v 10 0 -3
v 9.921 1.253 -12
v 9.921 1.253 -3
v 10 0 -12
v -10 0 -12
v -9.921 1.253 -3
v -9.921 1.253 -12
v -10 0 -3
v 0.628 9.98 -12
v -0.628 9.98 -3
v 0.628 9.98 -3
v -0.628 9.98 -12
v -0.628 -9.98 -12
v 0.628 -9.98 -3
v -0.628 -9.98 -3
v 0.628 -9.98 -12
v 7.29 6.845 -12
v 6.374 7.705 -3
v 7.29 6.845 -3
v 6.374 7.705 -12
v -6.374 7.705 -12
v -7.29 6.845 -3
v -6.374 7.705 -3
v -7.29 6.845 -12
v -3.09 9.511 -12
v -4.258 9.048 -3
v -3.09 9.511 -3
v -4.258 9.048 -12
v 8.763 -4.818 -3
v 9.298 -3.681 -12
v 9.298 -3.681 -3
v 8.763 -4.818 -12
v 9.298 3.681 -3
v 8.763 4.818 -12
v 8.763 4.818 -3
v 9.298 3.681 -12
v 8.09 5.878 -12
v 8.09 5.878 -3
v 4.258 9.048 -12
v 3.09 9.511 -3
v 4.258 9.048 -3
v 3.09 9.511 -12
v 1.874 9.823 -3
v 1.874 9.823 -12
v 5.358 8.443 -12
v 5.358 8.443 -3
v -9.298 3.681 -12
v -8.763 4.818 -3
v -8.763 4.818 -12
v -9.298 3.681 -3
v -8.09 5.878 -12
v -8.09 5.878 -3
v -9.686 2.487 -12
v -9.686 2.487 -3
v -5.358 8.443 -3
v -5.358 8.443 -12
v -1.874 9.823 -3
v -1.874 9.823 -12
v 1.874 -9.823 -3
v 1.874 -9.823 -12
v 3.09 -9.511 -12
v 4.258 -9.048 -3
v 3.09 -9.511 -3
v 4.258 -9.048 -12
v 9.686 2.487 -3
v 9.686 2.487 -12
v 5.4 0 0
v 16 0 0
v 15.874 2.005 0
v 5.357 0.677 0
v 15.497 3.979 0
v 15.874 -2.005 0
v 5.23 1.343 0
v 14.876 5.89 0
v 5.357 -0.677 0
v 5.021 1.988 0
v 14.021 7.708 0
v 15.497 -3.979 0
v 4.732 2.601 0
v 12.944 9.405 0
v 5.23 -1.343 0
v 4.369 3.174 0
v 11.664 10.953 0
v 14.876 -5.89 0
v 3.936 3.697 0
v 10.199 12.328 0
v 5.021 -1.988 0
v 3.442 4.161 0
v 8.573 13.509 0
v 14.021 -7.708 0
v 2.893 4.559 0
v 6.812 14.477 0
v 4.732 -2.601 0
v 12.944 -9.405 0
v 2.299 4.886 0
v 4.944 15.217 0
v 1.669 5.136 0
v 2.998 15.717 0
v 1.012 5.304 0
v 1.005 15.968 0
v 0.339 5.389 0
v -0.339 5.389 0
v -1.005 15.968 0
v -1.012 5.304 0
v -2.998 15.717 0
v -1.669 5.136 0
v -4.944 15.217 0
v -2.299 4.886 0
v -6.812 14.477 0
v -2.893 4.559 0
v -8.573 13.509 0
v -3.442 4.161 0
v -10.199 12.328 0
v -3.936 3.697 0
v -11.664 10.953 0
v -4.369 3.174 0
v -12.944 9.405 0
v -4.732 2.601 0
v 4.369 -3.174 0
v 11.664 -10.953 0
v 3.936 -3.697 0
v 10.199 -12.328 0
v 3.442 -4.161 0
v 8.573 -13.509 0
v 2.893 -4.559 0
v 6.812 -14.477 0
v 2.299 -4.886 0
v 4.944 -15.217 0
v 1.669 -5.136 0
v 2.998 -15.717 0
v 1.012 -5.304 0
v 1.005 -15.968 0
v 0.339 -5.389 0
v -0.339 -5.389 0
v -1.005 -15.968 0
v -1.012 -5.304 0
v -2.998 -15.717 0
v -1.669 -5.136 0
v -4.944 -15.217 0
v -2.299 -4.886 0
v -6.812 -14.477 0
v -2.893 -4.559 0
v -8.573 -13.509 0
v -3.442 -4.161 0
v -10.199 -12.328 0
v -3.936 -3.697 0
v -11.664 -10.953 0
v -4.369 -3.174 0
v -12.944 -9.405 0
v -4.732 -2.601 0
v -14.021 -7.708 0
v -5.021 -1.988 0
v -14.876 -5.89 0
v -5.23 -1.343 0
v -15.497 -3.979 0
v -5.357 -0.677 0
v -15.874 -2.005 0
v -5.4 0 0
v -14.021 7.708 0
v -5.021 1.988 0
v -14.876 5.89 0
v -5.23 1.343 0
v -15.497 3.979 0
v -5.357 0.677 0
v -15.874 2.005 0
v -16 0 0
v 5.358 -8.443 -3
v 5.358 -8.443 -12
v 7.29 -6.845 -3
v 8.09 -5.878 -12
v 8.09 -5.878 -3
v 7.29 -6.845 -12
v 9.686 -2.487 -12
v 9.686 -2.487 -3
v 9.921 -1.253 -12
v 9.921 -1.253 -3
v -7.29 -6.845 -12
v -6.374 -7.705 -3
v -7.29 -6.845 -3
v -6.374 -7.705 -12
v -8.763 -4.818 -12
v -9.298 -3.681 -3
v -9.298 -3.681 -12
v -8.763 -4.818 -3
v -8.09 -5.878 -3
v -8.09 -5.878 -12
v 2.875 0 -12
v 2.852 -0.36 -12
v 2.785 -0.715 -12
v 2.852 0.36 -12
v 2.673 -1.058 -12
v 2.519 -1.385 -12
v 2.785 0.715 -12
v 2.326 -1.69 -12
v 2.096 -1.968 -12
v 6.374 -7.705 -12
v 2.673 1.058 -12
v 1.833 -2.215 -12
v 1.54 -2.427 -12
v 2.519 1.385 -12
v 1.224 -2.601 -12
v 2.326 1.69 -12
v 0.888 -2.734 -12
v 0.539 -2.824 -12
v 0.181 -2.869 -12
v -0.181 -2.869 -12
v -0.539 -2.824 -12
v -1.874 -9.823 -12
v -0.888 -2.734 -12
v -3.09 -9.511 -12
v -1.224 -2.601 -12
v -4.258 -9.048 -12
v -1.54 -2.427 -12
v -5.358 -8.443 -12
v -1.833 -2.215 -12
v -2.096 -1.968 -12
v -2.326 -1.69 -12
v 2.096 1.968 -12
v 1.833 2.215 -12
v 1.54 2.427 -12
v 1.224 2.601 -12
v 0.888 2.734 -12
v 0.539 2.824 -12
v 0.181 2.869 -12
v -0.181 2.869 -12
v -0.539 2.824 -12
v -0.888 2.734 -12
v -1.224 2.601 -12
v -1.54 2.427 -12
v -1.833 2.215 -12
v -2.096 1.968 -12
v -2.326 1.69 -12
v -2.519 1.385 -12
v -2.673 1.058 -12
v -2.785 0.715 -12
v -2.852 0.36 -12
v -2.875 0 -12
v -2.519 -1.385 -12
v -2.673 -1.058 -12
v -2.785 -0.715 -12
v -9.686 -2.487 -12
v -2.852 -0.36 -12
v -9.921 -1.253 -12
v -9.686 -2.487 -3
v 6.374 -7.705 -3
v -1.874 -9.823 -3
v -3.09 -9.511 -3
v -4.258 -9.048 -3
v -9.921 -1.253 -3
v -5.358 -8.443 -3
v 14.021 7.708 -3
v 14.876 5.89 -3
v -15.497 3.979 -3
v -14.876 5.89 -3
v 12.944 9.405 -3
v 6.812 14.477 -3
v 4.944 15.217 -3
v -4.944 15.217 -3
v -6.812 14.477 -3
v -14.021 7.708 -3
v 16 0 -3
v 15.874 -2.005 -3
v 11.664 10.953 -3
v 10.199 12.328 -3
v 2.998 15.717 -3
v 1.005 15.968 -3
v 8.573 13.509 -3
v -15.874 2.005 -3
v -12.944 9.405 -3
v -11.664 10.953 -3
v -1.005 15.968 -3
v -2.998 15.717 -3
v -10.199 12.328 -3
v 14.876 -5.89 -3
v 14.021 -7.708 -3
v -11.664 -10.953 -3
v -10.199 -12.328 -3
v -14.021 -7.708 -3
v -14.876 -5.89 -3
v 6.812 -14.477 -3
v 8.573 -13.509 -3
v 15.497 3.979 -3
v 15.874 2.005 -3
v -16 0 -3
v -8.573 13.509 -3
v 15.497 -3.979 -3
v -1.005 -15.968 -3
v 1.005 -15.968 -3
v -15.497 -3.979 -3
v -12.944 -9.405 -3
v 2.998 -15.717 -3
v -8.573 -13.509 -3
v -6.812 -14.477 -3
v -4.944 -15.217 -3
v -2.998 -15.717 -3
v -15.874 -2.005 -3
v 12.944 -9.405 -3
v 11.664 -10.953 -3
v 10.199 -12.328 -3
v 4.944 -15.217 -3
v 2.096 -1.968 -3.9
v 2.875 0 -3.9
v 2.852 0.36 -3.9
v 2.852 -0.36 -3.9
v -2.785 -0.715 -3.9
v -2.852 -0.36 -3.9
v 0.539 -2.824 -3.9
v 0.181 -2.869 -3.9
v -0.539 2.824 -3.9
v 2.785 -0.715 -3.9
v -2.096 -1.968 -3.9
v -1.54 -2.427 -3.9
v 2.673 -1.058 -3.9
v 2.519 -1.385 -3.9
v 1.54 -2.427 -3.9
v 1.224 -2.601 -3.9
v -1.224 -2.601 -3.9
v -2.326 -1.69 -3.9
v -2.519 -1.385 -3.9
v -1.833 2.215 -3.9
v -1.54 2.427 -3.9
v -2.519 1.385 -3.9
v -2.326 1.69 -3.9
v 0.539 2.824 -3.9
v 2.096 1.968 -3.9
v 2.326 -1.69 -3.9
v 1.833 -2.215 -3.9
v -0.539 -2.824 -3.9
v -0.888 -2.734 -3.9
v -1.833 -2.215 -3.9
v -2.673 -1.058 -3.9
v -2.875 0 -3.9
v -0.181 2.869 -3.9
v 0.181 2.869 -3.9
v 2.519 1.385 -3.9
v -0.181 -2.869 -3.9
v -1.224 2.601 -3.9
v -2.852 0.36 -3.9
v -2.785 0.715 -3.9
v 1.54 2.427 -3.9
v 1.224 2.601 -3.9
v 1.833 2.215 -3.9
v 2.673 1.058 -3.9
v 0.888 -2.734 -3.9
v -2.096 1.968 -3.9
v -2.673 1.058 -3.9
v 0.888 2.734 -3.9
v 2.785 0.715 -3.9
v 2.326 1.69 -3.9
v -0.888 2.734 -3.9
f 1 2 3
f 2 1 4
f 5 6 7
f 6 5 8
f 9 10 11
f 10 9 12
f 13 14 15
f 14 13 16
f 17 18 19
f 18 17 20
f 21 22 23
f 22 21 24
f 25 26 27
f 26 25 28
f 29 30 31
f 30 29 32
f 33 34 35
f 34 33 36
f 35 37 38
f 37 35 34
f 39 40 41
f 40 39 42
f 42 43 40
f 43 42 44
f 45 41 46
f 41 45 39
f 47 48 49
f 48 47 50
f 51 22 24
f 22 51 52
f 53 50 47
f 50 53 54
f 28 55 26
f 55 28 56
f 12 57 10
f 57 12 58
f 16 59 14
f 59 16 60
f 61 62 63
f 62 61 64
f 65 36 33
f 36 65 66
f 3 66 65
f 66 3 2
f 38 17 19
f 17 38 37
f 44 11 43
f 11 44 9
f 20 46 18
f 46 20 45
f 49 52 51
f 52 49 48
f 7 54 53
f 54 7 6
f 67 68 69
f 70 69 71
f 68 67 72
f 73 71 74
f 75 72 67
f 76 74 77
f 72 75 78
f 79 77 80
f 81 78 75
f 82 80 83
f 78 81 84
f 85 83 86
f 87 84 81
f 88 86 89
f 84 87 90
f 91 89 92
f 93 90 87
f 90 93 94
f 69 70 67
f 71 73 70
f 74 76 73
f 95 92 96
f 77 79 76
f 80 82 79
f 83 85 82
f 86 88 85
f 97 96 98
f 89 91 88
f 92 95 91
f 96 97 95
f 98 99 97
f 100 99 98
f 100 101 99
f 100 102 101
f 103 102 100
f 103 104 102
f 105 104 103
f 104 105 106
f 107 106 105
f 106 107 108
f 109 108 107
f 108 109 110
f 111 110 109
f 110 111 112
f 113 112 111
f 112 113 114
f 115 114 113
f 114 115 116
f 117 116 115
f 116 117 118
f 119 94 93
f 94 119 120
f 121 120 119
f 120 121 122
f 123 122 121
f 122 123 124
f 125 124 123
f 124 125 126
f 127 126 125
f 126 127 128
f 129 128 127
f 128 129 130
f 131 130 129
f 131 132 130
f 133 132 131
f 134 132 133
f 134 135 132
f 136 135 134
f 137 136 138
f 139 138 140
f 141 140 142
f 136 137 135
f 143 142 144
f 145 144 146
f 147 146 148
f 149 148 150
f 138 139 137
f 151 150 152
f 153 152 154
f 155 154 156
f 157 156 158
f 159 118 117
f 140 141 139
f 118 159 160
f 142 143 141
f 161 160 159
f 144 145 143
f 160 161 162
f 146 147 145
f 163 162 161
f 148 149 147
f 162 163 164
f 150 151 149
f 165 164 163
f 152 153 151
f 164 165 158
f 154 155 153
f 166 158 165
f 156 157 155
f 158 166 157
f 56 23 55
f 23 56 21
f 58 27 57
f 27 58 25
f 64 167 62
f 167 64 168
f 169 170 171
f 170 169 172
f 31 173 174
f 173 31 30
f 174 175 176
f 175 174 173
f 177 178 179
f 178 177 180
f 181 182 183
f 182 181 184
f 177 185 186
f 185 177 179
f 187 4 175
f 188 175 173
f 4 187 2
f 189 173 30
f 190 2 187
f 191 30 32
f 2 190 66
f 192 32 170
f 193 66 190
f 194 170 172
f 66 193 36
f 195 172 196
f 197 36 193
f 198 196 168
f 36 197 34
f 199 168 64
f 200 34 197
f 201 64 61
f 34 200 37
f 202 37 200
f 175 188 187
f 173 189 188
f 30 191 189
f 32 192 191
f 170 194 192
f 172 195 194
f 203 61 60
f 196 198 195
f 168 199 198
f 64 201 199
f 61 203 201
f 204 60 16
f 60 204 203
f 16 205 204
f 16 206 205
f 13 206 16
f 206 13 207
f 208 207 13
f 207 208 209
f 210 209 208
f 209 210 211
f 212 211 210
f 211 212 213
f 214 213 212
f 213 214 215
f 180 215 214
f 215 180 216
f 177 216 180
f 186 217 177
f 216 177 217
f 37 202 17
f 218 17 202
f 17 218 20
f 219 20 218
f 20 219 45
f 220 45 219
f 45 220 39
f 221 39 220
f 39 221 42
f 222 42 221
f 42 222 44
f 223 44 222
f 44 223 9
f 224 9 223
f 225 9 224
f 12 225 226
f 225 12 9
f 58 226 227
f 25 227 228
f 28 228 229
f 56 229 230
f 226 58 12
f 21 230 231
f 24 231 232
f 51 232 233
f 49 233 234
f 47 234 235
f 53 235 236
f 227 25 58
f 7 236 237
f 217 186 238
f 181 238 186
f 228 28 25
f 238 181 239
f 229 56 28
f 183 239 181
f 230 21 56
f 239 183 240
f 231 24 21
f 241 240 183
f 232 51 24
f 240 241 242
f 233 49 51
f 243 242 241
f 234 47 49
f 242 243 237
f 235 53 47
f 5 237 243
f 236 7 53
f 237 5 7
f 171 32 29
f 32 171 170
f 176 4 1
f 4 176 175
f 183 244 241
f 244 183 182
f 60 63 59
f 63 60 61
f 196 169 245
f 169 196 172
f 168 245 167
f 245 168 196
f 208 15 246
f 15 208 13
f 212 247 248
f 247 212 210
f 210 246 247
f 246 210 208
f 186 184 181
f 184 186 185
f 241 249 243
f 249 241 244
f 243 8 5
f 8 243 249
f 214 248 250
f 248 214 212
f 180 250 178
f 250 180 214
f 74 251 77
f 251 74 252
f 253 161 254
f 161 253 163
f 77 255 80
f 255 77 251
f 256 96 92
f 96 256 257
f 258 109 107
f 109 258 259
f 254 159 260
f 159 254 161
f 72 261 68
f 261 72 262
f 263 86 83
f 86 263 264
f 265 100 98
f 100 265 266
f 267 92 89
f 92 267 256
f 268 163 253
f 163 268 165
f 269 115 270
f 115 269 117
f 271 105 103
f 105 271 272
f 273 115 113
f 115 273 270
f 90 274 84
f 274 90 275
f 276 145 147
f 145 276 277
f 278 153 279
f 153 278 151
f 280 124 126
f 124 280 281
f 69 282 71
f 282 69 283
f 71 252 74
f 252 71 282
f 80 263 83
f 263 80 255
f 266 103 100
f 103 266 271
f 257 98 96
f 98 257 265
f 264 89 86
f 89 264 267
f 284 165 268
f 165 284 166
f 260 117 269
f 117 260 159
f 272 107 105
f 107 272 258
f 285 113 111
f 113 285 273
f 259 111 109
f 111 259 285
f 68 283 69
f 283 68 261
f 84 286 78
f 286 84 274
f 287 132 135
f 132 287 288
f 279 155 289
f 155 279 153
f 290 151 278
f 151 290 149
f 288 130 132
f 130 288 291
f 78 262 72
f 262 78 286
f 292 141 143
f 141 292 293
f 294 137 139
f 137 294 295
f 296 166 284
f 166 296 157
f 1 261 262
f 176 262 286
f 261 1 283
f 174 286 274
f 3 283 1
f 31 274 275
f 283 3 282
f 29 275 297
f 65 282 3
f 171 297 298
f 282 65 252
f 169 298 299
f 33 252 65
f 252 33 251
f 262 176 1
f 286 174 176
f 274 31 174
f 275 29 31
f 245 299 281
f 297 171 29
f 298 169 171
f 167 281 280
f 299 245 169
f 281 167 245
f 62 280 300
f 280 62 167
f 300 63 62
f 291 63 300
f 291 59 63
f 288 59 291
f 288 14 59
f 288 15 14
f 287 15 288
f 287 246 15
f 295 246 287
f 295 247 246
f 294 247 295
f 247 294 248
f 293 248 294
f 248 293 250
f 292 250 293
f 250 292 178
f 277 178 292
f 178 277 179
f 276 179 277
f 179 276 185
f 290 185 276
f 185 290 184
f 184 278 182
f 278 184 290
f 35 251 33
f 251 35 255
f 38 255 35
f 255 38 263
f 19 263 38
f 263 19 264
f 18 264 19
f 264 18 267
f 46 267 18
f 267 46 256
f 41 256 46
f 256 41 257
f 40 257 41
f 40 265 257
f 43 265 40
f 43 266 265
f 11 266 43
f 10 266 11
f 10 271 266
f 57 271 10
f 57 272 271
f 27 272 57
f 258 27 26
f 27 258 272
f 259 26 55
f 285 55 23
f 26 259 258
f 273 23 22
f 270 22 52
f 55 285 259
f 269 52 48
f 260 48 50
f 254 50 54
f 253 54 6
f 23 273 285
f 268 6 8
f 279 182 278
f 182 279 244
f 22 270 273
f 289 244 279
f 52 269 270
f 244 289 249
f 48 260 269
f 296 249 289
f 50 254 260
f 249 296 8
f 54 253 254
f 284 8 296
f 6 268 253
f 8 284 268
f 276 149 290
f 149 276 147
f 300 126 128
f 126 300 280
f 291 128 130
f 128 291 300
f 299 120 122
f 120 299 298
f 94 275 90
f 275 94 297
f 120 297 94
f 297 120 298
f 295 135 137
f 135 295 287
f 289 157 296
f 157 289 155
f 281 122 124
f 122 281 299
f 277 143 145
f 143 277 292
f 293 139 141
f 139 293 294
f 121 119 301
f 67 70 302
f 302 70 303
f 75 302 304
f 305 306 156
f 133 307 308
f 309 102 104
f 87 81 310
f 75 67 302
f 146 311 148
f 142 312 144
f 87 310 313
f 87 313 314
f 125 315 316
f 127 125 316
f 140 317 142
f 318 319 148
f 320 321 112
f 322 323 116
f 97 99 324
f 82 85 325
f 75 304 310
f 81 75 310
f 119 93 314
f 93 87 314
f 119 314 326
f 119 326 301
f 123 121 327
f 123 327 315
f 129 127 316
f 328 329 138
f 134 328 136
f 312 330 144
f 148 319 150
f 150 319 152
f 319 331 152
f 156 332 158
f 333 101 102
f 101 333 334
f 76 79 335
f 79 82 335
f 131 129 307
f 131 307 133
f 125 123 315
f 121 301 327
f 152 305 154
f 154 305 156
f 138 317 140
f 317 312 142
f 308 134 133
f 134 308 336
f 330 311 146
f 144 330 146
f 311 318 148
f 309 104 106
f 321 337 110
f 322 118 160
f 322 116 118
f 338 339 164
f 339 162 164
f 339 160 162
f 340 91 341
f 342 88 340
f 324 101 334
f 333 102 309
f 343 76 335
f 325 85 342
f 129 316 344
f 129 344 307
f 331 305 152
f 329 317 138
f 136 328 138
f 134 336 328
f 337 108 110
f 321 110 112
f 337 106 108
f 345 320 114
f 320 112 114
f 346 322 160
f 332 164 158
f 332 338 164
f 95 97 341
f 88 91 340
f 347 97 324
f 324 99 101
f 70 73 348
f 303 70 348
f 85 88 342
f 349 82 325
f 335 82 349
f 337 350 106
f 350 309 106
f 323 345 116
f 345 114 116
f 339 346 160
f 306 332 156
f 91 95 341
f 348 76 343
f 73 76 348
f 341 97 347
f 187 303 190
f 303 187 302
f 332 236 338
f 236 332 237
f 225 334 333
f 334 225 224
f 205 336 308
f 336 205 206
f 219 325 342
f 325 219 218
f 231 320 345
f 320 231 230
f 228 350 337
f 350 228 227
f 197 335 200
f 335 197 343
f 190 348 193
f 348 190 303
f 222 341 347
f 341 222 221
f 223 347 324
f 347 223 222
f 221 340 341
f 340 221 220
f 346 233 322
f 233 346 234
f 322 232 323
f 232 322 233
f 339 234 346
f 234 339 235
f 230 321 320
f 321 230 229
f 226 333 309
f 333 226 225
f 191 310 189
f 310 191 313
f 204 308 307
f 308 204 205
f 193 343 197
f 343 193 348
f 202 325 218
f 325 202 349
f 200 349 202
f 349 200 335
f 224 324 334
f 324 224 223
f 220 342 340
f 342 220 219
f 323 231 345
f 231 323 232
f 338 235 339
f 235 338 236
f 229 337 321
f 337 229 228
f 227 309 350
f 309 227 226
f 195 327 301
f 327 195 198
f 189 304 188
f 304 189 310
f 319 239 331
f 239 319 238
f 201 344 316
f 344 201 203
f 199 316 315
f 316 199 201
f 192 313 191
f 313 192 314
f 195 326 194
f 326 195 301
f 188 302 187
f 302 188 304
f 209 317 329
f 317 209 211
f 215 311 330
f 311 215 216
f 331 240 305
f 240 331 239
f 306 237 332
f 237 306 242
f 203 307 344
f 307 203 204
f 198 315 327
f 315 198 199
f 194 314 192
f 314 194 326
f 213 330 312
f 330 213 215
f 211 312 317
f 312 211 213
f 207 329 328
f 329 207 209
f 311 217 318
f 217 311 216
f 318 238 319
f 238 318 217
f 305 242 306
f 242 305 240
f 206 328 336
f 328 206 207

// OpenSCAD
$fn = 50;


difference() {
	union() {
		translate(v = [0, 0, -12.0000000000]) {
			cylinder(h = 12, r = 10.0000000000);
		}
		translate(v = [0, 0, -3.0000000000]) {
			cylinder(h = 3, r = 16.0000000000);
		}
	}
	union() {
		translate(v = [0, 0, 0]) {
			rotate(a = [0, 0, 0]) {
				difference() {
					union() {
						#translate(v = [0, 0, -12.0000000000]) {
							cylinder(h = 12, r = 2.6000000000);
						}
						#translate(v = [0, 0, -3.9000000000]) {
							cylinder(h = 3.9000000000, r = 10.0000000000, r1 = 2.8750000000, r2 = 5.4000000000);
						}
						#translate(v = [0, 0, -12.0000000000]) {
							cylinder(h = 12, r = 2.8750000000);
						}
						#translate(v = [0, 0, -12.0000000000]) {
							cylinder(h = 12, r = 2.6000000000);
						}
					}
					union();
				}
			}
		}
	}
}
